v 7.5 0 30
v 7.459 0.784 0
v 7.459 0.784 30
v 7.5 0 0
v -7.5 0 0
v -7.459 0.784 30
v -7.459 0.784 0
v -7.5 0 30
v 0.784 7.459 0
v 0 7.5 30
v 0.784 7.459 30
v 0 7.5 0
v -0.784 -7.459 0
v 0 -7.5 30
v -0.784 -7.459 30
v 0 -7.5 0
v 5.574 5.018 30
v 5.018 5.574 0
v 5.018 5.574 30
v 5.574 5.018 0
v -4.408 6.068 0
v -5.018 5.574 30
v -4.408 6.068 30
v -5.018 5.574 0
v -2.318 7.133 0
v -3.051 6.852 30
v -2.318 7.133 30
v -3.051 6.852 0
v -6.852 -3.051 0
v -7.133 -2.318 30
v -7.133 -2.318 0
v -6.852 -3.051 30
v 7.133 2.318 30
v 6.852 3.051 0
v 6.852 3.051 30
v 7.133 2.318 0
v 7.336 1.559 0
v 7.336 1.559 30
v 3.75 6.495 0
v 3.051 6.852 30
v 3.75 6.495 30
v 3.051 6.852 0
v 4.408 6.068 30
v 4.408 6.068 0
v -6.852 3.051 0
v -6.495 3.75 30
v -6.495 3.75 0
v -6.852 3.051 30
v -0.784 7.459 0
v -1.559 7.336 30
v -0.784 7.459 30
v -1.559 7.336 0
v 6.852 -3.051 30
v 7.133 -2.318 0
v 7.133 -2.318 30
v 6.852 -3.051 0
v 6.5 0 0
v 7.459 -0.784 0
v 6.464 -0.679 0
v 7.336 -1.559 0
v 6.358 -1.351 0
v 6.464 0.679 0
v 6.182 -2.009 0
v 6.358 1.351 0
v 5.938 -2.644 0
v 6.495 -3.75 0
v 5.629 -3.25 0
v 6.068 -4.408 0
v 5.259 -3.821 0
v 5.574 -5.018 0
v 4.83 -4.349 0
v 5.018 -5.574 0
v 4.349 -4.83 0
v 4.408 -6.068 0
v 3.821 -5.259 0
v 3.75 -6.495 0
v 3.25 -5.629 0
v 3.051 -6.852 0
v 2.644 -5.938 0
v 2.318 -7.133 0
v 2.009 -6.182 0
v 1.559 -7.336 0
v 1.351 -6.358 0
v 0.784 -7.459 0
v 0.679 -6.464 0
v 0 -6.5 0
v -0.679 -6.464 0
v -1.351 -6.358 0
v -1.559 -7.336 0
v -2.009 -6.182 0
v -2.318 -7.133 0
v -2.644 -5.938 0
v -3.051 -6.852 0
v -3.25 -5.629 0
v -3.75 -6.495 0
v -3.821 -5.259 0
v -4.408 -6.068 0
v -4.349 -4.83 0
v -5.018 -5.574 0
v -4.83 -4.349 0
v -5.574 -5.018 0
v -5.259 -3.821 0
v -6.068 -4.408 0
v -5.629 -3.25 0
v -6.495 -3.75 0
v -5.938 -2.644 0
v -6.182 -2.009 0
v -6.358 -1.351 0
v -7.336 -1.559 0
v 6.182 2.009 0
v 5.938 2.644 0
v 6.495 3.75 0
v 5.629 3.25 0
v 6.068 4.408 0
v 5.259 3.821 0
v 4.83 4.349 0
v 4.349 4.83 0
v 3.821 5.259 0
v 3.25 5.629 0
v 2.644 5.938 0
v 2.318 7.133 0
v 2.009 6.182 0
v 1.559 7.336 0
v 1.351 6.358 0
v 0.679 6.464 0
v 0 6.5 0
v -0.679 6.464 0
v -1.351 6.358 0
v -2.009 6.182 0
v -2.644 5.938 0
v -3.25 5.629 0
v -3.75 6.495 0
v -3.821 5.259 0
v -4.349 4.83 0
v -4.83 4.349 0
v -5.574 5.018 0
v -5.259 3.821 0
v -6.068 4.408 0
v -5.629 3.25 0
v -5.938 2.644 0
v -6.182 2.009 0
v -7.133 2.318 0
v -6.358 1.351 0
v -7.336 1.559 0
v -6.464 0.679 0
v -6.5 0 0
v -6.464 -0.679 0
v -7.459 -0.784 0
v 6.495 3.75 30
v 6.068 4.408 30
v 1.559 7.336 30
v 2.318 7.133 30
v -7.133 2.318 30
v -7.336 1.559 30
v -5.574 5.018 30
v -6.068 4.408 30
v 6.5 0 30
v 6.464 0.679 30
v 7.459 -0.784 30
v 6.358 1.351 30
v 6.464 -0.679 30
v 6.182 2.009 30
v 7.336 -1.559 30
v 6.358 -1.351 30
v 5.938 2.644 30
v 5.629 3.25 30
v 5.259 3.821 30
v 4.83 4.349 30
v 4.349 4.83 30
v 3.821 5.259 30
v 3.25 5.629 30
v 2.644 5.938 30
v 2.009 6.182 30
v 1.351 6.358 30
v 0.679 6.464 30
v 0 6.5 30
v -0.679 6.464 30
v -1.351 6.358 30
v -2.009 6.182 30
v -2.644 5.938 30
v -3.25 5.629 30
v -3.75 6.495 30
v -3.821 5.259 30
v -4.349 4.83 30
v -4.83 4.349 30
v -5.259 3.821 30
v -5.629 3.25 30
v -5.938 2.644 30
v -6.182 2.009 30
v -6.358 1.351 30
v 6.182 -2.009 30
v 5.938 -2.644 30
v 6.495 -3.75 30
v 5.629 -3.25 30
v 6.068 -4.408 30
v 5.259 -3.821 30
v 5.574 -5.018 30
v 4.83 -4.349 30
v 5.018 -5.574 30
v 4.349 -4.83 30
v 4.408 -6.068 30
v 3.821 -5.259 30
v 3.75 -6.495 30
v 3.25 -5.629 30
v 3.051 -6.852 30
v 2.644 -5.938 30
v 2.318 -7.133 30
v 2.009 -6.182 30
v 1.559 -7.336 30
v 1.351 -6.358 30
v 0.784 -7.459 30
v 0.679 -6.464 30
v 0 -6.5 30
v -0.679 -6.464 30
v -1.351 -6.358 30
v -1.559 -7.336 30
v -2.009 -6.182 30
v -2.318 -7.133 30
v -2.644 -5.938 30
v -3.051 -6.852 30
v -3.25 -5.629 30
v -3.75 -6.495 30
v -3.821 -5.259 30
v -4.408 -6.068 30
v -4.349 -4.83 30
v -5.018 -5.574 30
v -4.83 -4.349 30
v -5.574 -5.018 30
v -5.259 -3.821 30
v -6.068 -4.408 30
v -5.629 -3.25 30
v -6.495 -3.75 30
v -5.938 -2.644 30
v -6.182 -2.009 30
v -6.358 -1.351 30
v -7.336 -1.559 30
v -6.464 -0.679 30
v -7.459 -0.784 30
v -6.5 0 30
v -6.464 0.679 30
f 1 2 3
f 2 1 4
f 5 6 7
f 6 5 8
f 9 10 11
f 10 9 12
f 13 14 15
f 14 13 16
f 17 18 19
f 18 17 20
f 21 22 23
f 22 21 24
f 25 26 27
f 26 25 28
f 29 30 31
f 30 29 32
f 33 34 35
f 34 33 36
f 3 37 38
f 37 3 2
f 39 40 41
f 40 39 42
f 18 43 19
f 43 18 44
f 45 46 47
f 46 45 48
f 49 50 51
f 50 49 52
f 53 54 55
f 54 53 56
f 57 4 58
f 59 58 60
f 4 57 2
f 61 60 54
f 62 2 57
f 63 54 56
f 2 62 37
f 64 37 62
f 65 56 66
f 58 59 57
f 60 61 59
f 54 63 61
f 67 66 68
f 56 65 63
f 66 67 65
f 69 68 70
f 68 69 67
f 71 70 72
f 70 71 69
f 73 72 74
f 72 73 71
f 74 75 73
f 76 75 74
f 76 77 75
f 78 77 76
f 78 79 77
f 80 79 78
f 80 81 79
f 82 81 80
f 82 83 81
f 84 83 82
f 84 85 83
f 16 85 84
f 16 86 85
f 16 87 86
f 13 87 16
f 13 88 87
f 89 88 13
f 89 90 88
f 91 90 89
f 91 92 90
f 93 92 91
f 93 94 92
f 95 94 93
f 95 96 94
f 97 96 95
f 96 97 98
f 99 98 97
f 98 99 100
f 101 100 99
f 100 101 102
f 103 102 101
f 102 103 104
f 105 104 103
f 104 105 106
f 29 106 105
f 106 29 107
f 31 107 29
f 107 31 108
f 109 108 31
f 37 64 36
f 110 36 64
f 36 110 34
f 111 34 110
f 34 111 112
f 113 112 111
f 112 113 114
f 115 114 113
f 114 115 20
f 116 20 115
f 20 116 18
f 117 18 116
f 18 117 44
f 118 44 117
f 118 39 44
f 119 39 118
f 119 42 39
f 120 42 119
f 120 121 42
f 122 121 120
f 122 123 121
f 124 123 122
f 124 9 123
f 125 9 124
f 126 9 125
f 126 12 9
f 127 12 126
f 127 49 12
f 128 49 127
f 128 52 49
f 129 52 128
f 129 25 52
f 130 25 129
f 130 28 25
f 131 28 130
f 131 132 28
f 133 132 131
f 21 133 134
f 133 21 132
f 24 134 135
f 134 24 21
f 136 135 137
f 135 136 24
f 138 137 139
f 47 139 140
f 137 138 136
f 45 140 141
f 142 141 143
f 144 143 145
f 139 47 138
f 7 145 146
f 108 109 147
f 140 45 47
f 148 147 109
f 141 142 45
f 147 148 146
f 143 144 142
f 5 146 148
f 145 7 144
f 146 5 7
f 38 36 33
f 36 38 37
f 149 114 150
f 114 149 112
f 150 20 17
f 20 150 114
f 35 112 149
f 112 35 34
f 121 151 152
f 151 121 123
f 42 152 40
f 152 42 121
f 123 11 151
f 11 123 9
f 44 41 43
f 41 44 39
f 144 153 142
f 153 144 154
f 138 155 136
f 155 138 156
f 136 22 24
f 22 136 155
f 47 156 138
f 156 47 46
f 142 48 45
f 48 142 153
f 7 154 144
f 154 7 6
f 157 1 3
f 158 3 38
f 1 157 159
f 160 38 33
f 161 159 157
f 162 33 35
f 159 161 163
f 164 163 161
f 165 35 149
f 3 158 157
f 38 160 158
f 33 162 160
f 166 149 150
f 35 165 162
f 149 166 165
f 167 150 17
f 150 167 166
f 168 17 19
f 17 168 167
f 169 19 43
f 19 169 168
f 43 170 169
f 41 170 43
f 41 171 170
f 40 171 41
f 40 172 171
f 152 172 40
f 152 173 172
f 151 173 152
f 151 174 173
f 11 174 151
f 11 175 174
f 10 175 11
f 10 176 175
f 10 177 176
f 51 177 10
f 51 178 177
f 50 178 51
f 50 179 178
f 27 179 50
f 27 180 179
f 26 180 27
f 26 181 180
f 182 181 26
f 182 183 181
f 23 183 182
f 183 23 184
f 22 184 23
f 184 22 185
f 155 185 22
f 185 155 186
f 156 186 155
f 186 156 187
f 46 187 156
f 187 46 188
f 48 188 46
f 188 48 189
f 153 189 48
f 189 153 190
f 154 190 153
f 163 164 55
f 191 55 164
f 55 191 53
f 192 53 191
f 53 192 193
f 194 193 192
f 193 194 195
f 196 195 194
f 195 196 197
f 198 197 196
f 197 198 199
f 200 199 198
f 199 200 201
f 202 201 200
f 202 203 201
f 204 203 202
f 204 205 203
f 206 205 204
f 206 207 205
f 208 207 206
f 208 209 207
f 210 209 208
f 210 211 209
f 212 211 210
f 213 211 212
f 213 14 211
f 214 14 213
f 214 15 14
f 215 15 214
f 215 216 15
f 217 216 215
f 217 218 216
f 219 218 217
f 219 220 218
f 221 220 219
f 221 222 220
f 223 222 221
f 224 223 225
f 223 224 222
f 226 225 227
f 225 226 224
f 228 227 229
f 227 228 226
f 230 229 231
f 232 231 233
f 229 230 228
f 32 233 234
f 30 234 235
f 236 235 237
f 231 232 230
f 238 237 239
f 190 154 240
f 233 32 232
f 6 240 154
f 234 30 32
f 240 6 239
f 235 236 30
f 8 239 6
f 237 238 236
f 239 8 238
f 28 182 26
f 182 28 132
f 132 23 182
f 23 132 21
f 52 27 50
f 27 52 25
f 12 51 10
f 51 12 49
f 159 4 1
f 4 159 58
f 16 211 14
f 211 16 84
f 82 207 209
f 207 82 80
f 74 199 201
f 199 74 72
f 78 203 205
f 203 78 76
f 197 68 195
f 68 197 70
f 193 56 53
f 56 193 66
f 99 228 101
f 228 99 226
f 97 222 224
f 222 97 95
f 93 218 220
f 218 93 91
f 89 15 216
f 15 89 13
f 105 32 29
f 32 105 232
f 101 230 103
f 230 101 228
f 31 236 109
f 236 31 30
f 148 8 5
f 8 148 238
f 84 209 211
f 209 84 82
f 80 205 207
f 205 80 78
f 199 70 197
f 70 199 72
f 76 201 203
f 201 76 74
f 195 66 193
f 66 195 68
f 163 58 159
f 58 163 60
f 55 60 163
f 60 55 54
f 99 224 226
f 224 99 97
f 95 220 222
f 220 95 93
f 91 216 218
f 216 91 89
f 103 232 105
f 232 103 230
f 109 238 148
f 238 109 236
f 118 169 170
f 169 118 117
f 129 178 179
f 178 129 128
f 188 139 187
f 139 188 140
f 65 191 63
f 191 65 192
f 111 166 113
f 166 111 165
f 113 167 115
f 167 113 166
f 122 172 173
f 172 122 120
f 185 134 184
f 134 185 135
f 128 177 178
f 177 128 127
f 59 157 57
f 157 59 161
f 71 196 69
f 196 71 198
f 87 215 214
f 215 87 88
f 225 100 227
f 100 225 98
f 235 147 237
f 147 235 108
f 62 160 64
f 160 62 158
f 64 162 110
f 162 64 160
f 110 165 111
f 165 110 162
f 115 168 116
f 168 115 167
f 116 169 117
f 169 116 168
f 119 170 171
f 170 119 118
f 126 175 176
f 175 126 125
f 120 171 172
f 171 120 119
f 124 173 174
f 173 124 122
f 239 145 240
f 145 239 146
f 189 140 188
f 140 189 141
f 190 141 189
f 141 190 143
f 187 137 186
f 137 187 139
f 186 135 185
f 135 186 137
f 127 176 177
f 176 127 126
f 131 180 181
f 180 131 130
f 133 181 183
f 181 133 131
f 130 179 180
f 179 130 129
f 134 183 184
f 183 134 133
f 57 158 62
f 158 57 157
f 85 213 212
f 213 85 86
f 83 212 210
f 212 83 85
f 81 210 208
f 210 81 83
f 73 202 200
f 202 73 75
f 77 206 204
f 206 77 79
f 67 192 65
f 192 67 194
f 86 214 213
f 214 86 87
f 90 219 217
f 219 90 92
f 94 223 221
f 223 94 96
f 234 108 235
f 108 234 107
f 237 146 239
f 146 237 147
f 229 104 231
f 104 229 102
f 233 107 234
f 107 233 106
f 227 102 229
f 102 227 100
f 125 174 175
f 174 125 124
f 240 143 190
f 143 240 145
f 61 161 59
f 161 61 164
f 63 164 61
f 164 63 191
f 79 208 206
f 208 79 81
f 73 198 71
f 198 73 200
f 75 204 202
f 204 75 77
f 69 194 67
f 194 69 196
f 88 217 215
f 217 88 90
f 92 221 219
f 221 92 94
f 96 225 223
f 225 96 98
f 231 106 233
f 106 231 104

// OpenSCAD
module tube(height, radius, thickness) {
    half_thickness = thickness / 2;
    
    // Main hollow tube column.
    difference() {
        cylinder(h=height, r=radius + half_thickness, $fn=60);
        translate([0, 0, -1])
        cylinder(h=height+2, r=radius - half_thickness, $fn=60);
    }

}

module t0() tube(30, 7, 1);

X0 = 15;

module t1() {
    t0();
    translate([X0, 0, 0]) t0();
    translate([X0 * cos(60), X0*sin(60), 0]) t0();
}

X1 = X0 + X0;
module t2() {
    t1();
    translate([X1, 0, 0]) t1();
    translate([X1 * cos(60), X1*sin(60), 0]) t1();
}

X2 = X1 + X1;
module t3() {
    t2();
    translate([X2, 0, 0]) t2();
    translate([X2 * cos(60), X2*sin(60), 0]) t2();
}

X3 = X2 + X2;
module t4() {
    t3();
    translate([X3, 0, 0]) t3();
    translate([X3 * cos(60), X3*sin(60), 0]) t3();
}
//t4();
t0();
